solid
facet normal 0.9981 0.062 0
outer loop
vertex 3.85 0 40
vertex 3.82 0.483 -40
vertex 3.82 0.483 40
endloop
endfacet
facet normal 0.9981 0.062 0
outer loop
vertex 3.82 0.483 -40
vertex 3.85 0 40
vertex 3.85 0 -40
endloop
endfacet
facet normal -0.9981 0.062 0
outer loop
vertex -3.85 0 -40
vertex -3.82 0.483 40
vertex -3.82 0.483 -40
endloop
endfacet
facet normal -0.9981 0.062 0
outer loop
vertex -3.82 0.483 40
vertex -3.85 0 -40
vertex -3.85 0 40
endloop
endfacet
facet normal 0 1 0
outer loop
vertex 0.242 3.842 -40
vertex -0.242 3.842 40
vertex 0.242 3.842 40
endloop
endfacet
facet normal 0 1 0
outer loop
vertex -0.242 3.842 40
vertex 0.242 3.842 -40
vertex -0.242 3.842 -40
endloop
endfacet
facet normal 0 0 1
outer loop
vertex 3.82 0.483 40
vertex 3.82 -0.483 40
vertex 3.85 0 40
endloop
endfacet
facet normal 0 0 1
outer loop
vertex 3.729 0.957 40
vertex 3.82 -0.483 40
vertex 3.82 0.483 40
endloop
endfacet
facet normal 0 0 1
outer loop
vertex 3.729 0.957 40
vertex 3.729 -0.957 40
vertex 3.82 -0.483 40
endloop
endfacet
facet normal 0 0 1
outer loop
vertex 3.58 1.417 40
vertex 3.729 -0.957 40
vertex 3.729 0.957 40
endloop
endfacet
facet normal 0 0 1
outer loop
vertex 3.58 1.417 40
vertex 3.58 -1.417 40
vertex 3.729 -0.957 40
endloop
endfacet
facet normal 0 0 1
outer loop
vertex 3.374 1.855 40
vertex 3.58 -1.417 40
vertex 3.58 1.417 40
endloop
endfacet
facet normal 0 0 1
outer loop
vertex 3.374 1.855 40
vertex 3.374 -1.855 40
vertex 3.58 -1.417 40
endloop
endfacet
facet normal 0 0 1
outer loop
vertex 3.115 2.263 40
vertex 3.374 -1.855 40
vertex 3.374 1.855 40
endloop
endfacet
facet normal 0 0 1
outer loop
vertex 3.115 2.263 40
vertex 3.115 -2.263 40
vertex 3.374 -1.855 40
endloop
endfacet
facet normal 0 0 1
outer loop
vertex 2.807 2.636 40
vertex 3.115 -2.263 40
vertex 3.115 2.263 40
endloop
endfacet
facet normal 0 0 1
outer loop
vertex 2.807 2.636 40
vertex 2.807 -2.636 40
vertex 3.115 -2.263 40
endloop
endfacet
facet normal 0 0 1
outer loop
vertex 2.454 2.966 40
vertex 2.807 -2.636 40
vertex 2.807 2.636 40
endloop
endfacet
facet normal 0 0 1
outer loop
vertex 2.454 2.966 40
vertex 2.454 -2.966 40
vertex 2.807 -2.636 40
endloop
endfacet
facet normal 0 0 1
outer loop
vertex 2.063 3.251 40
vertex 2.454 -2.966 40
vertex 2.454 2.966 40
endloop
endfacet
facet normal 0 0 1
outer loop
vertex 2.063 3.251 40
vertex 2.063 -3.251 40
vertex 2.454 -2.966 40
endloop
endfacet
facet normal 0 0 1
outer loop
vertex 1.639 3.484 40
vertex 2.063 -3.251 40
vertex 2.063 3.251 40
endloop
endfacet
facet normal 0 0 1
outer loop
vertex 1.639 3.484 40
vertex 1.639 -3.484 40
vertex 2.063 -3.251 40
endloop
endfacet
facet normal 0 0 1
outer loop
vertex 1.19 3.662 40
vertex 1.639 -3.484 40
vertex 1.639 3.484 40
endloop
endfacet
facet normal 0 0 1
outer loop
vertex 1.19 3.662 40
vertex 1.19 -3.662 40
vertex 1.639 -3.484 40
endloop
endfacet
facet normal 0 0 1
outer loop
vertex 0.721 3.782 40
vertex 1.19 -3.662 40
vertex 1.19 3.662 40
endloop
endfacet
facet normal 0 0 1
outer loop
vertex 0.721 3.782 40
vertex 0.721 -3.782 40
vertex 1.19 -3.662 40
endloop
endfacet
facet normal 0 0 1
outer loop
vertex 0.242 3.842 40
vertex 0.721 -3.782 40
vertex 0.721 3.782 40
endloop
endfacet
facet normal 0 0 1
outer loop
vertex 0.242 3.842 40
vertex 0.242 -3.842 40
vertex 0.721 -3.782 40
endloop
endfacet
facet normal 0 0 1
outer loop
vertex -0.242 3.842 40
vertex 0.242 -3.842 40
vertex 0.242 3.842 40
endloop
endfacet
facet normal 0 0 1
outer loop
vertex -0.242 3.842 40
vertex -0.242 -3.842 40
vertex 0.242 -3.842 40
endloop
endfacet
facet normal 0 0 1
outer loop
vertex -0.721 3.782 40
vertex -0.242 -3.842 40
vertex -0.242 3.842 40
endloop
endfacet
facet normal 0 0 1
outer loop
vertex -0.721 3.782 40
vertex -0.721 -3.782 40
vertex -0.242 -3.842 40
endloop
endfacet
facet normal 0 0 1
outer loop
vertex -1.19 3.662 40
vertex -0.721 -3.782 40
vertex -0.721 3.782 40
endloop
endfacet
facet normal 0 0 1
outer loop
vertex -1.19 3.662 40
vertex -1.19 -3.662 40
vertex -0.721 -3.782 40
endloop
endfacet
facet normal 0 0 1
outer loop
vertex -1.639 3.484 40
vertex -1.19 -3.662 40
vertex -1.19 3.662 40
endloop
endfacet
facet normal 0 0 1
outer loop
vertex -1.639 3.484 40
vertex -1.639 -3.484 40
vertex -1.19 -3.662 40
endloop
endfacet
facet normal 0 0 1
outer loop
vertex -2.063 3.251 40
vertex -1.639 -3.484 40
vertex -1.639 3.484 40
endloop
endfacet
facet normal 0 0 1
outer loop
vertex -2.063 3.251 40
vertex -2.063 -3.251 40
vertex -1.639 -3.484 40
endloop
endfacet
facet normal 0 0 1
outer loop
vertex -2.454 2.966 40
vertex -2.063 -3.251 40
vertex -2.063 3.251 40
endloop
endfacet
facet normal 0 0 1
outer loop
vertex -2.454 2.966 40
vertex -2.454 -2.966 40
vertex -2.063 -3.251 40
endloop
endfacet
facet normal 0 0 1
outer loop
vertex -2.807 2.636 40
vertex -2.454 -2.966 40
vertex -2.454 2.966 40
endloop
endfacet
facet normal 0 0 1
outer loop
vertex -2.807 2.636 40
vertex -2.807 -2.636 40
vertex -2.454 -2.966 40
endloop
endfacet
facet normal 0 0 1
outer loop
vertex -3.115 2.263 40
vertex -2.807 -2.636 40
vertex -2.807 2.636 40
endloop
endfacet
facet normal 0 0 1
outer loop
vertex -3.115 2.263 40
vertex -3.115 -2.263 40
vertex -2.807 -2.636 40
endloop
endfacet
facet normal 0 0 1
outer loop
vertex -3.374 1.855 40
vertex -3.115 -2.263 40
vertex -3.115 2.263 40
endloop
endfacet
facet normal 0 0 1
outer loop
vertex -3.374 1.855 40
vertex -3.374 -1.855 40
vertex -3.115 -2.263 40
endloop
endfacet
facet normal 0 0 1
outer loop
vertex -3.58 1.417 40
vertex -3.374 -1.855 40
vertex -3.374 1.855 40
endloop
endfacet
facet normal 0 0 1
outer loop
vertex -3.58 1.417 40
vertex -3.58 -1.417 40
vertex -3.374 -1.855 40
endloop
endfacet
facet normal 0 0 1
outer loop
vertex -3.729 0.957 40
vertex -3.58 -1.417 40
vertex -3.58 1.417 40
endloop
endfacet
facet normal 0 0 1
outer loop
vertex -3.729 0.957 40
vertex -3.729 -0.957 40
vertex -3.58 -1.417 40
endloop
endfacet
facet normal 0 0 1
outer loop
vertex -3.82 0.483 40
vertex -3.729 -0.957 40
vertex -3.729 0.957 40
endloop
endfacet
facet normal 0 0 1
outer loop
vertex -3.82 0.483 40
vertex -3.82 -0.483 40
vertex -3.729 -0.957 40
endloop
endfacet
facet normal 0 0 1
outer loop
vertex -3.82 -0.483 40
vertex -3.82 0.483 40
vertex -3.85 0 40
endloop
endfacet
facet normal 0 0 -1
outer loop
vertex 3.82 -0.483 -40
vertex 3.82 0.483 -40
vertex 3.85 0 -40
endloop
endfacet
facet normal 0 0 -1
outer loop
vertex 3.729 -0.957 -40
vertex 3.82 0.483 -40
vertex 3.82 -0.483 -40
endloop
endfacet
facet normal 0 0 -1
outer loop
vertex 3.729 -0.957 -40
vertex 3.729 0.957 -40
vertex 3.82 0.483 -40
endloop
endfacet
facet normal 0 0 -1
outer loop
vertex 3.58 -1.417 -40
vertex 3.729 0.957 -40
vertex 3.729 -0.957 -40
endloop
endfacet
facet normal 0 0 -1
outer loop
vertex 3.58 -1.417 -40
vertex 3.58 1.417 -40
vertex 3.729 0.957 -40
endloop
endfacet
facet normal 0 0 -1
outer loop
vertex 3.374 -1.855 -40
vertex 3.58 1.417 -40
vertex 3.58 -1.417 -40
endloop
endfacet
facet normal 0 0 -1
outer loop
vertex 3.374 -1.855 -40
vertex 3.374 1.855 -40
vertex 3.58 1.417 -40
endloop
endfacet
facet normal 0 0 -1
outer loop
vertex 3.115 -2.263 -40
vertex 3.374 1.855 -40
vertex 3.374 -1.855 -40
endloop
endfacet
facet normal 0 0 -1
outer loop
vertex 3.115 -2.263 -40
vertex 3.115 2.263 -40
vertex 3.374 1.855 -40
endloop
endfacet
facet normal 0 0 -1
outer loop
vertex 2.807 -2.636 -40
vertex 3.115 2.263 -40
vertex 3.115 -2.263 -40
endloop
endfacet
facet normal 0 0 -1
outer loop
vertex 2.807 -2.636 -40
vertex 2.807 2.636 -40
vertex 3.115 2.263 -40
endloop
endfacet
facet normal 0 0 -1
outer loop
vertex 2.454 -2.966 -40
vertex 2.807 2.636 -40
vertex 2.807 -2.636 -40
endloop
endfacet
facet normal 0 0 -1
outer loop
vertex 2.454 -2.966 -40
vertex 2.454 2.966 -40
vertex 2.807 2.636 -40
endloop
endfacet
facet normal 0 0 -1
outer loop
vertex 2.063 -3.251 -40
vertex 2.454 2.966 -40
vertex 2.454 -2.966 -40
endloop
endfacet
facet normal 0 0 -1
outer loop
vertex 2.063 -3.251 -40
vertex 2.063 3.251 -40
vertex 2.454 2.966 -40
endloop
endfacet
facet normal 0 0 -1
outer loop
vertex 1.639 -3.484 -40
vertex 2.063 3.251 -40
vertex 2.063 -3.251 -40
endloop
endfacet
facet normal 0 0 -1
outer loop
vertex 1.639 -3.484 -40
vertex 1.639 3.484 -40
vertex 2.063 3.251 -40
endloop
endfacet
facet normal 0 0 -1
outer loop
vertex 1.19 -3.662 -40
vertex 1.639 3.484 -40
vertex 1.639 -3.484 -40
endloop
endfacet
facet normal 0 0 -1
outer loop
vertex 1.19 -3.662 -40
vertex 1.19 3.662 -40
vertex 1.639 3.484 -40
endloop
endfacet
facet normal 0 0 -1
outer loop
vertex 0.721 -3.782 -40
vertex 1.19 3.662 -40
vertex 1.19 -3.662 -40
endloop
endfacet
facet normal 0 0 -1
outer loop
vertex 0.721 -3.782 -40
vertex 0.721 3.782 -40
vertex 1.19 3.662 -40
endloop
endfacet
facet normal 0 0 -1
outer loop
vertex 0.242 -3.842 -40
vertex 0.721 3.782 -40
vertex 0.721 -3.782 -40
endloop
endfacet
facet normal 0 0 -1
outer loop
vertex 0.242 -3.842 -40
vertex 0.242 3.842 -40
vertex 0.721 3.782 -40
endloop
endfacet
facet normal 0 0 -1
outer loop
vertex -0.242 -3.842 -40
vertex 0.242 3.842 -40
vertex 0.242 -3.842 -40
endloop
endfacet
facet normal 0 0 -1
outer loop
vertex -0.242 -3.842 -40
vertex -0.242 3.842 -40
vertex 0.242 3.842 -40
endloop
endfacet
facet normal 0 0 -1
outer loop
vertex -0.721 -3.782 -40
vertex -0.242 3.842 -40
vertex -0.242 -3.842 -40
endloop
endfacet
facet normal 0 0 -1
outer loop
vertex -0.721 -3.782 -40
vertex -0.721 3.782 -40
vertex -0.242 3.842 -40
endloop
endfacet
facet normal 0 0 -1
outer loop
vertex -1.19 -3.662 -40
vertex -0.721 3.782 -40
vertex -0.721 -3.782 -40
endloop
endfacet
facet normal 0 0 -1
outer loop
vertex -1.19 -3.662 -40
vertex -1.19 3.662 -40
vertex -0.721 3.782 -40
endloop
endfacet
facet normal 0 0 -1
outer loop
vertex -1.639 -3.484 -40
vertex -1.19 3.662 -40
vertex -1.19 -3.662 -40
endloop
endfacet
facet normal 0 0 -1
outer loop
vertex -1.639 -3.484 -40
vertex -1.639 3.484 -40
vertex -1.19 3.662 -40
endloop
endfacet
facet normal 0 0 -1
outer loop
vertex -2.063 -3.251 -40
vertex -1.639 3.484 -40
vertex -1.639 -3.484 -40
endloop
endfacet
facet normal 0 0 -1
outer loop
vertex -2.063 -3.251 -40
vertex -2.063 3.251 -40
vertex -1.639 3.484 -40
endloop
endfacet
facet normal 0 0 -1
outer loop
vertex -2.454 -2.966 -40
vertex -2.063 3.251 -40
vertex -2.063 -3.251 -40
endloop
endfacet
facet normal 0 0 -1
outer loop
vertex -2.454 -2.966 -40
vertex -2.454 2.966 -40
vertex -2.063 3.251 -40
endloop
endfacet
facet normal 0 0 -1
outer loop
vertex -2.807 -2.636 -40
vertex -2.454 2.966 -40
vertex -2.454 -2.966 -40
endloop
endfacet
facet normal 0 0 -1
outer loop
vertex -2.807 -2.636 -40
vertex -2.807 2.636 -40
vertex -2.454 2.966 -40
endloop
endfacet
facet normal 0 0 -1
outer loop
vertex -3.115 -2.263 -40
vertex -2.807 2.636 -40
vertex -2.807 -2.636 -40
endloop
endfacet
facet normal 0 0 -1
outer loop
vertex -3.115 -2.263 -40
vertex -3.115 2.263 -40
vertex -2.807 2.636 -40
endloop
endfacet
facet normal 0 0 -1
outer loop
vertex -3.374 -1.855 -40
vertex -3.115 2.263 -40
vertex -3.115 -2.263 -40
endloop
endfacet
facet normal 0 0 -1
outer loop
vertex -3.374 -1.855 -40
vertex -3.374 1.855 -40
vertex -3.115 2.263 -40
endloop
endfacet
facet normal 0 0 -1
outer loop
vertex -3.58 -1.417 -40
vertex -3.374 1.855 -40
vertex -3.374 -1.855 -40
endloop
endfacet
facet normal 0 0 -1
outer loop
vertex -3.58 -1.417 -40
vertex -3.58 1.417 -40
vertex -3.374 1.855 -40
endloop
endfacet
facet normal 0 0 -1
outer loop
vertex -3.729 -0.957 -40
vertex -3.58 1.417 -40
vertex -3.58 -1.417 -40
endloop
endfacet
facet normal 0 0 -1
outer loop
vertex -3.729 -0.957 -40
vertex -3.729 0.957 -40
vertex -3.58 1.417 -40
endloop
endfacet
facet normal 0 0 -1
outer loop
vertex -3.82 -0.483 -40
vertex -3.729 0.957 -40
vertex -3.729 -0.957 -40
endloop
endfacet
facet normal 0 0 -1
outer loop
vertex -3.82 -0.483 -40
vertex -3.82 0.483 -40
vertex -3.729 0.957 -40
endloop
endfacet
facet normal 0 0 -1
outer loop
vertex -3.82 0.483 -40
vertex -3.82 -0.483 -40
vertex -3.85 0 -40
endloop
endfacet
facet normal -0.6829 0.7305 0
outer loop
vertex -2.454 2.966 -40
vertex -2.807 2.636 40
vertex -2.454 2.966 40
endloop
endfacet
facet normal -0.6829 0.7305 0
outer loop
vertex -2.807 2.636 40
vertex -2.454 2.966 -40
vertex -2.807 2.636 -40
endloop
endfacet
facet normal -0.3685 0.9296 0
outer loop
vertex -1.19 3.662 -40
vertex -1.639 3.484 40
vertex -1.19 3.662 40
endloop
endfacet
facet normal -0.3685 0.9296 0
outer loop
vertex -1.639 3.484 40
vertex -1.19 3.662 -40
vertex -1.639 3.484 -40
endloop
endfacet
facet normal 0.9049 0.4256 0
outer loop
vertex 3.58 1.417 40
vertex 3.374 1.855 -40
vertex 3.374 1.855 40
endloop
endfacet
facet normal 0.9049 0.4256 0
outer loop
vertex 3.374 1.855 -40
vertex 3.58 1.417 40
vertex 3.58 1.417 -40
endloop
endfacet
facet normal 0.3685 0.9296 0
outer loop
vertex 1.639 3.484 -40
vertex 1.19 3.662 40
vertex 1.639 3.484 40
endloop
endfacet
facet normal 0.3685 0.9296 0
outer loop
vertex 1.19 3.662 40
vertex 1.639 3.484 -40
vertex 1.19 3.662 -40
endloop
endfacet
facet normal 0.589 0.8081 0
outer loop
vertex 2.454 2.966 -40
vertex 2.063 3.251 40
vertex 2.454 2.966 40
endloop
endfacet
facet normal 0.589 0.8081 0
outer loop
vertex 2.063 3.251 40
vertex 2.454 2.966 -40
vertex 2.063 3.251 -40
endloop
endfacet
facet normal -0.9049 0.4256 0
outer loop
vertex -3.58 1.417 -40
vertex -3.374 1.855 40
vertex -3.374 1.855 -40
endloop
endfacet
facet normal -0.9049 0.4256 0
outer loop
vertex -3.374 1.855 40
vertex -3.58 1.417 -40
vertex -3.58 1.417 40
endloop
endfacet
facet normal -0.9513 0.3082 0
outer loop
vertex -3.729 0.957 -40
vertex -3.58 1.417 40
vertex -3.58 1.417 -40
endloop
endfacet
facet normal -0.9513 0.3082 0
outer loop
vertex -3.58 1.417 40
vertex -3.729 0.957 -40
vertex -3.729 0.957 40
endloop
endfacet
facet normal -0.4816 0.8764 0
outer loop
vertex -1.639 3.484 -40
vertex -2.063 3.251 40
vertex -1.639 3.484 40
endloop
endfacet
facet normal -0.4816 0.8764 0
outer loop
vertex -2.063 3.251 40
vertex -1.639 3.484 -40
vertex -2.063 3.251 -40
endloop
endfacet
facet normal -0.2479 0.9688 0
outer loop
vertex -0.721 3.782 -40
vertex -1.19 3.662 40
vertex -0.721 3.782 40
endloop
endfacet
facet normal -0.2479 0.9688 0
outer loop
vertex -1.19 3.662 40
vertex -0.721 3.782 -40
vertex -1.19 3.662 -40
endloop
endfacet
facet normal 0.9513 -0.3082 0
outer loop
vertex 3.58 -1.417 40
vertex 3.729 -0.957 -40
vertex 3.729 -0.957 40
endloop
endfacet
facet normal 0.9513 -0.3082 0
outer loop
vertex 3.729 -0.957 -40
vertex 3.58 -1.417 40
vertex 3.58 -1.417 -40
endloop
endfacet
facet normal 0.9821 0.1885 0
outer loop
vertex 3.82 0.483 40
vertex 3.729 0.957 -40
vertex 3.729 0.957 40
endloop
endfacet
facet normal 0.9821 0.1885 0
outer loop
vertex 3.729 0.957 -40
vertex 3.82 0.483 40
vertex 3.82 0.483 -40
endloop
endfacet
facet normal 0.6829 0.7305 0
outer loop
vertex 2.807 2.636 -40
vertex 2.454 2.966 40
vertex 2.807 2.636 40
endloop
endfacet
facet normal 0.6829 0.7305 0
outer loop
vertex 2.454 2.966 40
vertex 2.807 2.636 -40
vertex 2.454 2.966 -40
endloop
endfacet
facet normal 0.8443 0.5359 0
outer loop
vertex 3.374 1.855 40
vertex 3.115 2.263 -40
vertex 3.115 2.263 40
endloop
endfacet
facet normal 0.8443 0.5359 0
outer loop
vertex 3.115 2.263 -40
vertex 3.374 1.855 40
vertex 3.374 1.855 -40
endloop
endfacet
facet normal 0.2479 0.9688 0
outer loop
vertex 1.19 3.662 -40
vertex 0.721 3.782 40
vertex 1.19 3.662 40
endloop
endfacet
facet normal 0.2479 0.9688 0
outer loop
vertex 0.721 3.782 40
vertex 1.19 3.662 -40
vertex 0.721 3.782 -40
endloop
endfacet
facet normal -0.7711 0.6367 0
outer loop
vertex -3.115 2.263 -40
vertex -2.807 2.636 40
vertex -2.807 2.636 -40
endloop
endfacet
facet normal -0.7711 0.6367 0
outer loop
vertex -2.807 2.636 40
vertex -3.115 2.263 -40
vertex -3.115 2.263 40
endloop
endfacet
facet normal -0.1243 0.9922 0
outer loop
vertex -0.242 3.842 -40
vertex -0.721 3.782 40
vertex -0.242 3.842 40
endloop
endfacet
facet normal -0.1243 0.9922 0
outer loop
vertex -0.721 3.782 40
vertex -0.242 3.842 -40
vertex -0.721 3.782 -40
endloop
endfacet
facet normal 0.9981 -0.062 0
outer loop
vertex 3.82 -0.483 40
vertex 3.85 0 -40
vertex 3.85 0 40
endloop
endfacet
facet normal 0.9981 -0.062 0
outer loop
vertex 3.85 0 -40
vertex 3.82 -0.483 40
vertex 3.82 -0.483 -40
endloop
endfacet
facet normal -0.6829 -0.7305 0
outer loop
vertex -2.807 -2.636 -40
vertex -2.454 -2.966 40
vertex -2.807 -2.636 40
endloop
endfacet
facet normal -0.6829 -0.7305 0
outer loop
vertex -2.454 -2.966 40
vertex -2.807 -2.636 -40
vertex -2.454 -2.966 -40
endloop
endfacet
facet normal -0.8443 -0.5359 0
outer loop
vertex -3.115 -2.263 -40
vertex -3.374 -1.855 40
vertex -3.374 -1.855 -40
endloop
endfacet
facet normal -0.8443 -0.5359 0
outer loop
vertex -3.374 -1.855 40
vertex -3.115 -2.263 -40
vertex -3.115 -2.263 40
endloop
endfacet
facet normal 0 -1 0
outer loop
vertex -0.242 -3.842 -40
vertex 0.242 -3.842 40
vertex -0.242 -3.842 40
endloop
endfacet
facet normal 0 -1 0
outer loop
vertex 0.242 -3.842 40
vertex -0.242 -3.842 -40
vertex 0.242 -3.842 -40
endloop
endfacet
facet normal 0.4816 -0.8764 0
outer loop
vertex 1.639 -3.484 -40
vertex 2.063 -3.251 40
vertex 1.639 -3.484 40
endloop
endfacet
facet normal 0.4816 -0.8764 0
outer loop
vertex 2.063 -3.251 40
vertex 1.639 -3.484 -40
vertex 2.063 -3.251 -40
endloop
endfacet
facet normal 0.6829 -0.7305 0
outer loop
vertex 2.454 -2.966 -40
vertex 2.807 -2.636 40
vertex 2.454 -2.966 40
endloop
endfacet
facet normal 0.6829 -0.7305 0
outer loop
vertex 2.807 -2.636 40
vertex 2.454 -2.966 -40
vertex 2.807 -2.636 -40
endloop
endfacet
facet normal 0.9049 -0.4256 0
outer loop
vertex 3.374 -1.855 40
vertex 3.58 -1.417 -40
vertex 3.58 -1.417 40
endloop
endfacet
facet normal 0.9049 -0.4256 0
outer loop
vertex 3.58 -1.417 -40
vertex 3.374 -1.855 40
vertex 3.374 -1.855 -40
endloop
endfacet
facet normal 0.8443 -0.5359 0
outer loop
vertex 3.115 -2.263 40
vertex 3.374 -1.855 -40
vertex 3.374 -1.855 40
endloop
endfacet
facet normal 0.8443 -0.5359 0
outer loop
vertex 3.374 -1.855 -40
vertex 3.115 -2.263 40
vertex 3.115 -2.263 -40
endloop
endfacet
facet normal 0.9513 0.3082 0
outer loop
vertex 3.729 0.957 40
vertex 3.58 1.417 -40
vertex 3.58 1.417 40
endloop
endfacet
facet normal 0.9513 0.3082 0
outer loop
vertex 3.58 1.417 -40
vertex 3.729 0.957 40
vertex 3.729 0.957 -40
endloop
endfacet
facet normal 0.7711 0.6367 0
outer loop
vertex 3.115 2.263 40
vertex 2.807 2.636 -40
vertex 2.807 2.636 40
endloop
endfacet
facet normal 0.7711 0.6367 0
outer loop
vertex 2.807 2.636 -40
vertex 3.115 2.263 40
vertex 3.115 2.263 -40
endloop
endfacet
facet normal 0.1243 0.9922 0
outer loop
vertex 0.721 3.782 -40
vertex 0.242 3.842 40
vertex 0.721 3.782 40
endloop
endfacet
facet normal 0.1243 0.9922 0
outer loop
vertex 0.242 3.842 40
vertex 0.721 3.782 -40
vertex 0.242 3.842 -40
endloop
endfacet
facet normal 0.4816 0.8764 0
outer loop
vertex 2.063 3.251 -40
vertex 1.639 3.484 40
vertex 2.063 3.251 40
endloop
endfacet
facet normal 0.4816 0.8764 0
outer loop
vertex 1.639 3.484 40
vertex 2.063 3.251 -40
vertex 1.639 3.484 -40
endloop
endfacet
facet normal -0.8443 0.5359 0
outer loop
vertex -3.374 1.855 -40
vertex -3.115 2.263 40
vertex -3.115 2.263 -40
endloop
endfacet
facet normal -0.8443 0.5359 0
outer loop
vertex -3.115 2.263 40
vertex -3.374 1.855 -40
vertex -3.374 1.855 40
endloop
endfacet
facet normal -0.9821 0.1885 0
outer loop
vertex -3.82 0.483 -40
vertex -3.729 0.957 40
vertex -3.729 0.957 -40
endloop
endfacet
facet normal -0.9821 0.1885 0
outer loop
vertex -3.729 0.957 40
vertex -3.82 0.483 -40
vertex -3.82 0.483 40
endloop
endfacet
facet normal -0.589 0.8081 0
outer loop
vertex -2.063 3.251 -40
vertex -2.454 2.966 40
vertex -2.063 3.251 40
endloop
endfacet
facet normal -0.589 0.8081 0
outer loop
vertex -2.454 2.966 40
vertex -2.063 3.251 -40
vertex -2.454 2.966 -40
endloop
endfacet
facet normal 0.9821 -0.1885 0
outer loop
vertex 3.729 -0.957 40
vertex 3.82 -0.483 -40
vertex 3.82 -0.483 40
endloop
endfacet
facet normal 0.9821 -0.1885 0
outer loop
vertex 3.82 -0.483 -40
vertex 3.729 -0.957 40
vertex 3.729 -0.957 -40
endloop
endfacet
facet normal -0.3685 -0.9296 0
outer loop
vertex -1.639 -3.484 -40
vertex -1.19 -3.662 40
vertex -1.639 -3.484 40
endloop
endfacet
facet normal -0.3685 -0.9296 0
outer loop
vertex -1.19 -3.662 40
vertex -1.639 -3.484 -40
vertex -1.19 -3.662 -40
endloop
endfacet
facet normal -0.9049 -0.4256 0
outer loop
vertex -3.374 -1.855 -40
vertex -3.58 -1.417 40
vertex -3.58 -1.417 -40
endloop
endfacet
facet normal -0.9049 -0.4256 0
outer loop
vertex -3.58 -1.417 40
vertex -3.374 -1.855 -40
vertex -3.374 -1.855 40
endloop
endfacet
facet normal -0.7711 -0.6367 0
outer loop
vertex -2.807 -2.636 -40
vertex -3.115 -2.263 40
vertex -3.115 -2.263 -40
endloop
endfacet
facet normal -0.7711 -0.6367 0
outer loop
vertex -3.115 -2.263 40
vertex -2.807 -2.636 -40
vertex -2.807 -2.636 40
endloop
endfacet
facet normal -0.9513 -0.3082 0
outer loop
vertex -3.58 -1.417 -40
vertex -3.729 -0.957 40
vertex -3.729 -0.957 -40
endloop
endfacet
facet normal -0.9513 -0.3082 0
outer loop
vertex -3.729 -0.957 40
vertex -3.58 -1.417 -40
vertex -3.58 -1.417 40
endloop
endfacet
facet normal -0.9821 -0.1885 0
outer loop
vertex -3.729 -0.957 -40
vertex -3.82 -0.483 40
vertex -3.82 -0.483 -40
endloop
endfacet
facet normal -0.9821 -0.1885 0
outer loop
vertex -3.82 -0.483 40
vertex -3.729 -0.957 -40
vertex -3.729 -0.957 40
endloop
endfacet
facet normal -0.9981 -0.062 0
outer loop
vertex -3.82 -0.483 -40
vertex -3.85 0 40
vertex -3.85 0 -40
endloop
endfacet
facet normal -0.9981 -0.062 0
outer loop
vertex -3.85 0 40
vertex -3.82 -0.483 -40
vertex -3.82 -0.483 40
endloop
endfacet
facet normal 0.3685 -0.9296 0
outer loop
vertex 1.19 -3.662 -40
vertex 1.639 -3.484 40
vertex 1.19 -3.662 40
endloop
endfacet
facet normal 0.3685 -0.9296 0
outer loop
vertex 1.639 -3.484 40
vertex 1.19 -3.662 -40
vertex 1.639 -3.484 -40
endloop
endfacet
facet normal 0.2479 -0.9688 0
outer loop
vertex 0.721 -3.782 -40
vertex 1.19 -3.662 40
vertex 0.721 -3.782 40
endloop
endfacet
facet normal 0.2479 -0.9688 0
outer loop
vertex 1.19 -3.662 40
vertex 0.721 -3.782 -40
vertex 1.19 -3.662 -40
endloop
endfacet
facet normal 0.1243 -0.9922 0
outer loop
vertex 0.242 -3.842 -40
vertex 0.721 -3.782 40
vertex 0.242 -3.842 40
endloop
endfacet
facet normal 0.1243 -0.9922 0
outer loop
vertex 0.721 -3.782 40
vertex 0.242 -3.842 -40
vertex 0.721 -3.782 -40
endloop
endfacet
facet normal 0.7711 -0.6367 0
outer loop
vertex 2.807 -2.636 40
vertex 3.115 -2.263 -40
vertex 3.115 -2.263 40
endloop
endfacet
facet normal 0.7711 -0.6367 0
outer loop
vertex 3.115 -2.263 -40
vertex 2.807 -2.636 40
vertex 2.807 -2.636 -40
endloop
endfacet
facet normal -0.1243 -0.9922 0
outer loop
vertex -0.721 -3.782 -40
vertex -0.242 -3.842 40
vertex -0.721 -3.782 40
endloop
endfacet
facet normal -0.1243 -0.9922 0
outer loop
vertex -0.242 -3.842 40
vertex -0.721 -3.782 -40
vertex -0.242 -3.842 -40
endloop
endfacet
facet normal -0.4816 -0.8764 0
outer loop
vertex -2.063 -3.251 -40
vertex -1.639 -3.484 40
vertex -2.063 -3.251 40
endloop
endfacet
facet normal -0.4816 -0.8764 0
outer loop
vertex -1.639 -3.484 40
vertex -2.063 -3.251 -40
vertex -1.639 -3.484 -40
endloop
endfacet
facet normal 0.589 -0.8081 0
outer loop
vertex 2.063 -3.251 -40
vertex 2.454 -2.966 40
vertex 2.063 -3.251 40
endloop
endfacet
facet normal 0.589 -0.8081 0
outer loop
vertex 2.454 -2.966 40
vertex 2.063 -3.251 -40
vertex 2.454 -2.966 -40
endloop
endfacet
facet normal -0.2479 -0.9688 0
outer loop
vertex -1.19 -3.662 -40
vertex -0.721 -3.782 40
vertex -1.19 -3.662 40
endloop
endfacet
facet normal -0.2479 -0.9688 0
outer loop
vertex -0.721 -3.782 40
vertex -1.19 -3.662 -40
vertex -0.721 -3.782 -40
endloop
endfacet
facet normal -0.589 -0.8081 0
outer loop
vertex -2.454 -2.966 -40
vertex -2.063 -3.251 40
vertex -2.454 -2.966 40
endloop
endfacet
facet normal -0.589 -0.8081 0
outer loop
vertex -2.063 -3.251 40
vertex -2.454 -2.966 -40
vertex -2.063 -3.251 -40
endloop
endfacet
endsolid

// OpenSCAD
$fn = 50;


difference() {
	union() {
		translate(v = [0, 0, -40.0000000000]) {
			cylinder(h = 80, r = 3.8500000000);
		}
	}
	union() {
		translate(v = [0, 0, -100.0000000000]) {
			cylinder(h = 200, r = 0);
		}
	}
}
